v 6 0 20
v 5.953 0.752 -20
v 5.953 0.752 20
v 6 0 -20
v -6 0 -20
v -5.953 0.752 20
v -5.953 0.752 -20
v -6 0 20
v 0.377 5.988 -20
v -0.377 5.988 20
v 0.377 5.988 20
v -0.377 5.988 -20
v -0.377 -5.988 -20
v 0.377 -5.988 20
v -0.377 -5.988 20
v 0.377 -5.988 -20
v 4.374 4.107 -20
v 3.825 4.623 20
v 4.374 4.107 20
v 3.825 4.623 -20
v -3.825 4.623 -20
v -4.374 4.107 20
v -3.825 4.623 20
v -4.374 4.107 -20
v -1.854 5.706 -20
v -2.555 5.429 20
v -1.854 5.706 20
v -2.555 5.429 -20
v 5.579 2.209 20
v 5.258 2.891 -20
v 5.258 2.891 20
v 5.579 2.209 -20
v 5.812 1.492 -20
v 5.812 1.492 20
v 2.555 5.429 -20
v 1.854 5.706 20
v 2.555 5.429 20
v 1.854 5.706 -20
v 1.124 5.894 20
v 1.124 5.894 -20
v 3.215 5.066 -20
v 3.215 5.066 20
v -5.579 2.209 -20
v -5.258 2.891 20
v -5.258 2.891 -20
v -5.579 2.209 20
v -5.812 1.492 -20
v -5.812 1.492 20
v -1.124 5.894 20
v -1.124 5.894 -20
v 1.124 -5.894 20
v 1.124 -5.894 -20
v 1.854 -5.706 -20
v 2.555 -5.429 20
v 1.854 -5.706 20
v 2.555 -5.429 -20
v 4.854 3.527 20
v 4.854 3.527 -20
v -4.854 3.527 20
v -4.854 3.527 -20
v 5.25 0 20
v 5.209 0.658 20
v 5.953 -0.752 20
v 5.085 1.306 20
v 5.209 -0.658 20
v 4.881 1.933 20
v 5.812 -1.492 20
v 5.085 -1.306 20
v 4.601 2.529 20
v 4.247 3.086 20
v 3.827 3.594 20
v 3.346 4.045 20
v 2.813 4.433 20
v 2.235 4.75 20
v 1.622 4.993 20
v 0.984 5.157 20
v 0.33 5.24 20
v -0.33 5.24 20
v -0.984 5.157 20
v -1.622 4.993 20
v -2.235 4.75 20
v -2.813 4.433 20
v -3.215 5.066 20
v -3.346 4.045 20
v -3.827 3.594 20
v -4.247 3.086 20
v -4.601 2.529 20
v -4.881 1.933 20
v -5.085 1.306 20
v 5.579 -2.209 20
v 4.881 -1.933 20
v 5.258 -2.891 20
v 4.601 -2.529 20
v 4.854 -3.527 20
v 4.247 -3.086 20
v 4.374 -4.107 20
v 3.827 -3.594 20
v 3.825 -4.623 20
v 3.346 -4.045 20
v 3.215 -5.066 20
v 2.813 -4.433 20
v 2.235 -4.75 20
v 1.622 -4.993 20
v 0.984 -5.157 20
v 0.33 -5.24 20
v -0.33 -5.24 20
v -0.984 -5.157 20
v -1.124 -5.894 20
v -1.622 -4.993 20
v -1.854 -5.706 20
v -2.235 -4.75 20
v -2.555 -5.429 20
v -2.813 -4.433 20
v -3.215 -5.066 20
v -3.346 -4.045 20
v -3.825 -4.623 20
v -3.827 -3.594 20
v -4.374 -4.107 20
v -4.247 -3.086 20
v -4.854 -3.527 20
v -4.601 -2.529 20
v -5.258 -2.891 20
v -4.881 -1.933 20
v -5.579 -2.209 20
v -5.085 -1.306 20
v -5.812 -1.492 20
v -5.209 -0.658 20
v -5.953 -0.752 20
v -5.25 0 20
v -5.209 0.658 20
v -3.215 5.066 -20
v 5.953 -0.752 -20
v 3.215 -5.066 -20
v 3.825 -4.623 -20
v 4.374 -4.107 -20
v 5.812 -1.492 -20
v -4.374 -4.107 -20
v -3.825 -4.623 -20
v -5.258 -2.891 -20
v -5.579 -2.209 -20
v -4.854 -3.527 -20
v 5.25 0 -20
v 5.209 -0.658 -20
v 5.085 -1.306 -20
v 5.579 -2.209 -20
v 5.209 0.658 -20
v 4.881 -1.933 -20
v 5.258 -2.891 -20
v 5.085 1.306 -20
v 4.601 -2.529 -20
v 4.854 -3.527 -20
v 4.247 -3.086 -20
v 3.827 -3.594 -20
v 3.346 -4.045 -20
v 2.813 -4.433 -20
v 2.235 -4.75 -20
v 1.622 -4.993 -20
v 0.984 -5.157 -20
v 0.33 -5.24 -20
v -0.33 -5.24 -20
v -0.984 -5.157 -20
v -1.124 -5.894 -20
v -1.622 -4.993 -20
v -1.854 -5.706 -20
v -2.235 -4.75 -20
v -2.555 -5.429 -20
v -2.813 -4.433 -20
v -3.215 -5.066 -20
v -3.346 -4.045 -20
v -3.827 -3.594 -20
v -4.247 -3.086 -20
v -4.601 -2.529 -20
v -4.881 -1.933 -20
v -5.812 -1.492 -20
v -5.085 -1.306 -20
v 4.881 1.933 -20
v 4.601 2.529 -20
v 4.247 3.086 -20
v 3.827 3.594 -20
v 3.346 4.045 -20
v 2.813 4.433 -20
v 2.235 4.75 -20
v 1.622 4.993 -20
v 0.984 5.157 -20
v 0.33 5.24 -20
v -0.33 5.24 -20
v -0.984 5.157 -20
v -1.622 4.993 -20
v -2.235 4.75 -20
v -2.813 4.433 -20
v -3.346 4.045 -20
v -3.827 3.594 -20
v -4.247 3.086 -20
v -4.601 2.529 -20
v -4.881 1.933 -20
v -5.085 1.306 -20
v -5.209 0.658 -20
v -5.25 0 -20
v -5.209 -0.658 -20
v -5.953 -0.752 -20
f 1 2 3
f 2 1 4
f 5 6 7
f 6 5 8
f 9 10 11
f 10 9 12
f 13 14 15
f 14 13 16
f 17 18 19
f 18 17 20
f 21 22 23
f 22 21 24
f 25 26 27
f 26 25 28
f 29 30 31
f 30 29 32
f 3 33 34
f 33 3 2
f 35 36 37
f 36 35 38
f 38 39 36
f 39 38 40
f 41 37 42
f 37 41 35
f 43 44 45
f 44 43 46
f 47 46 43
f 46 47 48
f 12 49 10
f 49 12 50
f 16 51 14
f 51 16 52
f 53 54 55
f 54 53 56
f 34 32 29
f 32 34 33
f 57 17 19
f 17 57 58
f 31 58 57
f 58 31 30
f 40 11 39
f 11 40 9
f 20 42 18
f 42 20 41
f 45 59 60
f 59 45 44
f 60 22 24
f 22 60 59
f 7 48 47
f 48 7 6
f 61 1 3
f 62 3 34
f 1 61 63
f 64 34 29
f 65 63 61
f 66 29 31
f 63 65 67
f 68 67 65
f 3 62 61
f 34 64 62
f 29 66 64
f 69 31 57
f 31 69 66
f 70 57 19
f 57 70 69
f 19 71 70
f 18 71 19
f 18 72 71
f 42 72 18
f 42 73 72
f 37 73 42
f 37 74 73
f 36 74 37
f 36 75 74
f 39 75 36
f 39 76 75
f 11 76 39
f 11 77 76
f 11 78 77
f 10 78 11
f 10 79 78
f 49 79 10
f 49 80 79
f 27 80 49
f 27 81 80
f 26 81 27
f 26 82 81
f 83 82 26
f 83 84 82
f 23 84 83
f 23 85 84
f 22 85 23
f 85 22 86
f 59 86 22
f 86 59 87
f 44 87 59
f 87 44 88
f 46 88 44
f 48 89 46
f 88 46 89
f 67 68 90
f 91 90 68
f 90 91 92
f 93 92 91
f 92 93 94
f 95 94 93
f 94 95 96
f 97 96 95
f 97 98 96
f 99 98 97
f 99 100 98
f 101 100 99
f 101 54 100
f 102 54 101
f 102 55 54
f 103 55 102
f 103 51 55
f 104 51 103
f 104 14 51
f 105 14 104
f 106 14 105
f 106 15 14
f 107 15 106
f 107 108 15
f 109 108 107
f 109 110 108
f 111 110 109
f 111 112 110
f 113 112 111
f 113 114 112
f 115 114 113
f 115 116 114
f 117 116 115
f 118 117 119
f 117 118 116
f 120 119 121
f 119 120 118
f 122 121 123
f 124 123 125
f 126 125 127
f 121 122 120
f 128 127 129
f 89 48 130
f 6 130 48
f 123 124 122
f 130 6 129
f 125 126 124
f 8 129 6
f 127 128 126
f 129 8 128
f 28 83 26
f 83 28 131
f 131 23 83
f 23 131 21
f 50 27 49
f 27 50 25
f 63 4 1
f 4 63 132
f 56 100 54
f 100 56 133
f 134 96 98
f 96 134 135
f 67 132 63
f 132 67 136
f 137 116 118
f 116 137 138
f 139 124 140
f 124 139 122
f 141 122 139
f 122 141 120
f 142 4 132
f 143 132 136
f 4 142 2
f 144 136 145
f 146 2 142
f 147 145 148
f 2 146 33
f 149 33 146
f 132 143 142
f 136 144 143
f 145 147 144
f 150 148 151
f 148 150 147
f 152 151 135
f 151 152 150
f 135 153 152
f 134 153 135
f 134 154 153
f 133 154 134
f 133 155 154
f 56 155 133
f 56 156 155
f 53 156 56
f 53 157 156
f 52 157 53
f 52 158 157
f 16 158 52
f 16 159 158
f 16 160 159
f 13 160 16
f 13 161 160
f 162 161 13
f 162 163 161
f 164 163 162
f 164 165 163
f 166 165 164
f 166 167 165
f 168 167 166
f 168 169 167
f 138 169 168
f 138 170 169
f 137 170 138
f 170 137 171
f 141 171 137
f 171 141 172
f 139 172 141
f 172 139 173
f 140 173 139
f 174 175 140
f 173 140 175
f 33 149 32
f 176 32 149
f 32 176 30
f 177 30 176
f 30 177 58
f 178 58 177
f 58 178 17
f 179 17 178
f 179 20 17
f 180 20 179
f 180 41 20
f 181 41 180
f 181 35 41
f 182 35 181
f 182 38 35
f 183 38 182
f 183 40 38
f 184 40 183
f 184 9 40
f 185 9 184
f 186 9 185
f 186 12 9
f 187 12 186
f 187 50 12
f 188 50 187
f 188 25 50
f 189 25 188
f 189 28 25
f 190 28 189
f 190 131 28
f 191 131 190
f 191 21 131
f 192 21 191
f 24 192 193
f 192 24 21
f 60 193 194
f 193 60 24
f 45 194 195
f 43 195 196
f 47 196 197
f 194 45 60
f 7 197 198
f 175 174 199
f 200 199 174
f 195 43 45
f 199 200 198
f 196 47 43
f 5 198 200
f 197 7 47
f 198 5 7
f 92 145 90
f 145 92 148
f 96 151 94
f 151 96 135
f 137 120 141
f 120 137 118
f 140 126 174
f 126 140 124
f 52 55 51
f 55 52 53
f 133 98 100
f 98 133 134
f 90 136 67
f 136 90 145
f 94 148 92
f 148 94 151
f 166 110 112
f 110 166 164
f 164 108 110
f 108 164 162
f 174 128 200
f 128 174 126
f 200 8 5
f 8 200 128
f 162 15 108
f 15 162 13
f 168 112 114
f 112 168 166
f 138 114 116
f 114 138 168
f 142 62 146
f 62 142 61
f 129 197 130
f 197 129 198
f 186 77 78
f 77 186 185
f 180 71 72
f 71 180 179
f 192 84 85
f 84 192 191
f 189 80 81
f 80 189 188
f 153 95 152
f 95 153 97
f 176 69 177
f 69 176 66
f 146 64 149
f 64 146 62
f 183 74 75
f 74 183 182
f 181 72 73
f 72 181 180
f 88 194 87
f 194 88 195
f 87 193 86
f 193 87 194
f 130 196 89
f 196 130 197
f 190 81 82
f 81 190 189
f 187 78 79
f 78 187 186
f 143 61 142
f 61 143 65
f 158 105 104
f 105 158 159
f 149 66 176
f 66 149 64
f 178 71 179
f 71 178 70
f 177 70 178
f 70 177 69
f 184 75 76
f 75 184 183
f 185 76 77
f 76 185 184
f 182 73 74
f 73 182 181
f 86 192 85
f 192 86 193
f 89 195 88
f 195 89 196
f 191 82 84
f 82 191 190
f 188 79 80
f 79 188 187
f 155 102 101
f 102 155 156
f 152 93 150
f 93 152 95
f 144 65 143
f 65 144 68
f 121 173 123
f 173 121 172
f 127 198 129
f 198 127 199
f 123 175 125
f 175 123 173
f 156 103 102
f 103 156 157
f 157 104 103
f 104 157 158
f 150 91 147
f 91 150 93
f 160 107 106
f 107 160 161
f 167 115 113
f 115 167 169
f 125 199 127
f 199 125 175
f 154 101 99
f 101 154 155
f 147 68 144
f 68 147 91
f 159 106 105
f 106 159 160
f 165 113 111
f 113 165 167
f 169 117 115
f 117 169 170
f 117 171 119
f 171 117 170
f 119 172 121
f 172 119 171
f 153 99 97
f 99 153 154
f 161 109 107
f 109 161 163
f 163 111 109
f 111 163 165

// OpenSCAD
$fn = 50;


difference() {
	union() {
		translate(v = [0, 0, -20.0000000000]) {
			cylinder(h = 40, r = 6.0000000000);
		}
	}
	union() {
		translate(v = [0, 0, -100.0000000000]) {
			cylinder(h = 200, r = 5.2500000000);
		}
	}
}
